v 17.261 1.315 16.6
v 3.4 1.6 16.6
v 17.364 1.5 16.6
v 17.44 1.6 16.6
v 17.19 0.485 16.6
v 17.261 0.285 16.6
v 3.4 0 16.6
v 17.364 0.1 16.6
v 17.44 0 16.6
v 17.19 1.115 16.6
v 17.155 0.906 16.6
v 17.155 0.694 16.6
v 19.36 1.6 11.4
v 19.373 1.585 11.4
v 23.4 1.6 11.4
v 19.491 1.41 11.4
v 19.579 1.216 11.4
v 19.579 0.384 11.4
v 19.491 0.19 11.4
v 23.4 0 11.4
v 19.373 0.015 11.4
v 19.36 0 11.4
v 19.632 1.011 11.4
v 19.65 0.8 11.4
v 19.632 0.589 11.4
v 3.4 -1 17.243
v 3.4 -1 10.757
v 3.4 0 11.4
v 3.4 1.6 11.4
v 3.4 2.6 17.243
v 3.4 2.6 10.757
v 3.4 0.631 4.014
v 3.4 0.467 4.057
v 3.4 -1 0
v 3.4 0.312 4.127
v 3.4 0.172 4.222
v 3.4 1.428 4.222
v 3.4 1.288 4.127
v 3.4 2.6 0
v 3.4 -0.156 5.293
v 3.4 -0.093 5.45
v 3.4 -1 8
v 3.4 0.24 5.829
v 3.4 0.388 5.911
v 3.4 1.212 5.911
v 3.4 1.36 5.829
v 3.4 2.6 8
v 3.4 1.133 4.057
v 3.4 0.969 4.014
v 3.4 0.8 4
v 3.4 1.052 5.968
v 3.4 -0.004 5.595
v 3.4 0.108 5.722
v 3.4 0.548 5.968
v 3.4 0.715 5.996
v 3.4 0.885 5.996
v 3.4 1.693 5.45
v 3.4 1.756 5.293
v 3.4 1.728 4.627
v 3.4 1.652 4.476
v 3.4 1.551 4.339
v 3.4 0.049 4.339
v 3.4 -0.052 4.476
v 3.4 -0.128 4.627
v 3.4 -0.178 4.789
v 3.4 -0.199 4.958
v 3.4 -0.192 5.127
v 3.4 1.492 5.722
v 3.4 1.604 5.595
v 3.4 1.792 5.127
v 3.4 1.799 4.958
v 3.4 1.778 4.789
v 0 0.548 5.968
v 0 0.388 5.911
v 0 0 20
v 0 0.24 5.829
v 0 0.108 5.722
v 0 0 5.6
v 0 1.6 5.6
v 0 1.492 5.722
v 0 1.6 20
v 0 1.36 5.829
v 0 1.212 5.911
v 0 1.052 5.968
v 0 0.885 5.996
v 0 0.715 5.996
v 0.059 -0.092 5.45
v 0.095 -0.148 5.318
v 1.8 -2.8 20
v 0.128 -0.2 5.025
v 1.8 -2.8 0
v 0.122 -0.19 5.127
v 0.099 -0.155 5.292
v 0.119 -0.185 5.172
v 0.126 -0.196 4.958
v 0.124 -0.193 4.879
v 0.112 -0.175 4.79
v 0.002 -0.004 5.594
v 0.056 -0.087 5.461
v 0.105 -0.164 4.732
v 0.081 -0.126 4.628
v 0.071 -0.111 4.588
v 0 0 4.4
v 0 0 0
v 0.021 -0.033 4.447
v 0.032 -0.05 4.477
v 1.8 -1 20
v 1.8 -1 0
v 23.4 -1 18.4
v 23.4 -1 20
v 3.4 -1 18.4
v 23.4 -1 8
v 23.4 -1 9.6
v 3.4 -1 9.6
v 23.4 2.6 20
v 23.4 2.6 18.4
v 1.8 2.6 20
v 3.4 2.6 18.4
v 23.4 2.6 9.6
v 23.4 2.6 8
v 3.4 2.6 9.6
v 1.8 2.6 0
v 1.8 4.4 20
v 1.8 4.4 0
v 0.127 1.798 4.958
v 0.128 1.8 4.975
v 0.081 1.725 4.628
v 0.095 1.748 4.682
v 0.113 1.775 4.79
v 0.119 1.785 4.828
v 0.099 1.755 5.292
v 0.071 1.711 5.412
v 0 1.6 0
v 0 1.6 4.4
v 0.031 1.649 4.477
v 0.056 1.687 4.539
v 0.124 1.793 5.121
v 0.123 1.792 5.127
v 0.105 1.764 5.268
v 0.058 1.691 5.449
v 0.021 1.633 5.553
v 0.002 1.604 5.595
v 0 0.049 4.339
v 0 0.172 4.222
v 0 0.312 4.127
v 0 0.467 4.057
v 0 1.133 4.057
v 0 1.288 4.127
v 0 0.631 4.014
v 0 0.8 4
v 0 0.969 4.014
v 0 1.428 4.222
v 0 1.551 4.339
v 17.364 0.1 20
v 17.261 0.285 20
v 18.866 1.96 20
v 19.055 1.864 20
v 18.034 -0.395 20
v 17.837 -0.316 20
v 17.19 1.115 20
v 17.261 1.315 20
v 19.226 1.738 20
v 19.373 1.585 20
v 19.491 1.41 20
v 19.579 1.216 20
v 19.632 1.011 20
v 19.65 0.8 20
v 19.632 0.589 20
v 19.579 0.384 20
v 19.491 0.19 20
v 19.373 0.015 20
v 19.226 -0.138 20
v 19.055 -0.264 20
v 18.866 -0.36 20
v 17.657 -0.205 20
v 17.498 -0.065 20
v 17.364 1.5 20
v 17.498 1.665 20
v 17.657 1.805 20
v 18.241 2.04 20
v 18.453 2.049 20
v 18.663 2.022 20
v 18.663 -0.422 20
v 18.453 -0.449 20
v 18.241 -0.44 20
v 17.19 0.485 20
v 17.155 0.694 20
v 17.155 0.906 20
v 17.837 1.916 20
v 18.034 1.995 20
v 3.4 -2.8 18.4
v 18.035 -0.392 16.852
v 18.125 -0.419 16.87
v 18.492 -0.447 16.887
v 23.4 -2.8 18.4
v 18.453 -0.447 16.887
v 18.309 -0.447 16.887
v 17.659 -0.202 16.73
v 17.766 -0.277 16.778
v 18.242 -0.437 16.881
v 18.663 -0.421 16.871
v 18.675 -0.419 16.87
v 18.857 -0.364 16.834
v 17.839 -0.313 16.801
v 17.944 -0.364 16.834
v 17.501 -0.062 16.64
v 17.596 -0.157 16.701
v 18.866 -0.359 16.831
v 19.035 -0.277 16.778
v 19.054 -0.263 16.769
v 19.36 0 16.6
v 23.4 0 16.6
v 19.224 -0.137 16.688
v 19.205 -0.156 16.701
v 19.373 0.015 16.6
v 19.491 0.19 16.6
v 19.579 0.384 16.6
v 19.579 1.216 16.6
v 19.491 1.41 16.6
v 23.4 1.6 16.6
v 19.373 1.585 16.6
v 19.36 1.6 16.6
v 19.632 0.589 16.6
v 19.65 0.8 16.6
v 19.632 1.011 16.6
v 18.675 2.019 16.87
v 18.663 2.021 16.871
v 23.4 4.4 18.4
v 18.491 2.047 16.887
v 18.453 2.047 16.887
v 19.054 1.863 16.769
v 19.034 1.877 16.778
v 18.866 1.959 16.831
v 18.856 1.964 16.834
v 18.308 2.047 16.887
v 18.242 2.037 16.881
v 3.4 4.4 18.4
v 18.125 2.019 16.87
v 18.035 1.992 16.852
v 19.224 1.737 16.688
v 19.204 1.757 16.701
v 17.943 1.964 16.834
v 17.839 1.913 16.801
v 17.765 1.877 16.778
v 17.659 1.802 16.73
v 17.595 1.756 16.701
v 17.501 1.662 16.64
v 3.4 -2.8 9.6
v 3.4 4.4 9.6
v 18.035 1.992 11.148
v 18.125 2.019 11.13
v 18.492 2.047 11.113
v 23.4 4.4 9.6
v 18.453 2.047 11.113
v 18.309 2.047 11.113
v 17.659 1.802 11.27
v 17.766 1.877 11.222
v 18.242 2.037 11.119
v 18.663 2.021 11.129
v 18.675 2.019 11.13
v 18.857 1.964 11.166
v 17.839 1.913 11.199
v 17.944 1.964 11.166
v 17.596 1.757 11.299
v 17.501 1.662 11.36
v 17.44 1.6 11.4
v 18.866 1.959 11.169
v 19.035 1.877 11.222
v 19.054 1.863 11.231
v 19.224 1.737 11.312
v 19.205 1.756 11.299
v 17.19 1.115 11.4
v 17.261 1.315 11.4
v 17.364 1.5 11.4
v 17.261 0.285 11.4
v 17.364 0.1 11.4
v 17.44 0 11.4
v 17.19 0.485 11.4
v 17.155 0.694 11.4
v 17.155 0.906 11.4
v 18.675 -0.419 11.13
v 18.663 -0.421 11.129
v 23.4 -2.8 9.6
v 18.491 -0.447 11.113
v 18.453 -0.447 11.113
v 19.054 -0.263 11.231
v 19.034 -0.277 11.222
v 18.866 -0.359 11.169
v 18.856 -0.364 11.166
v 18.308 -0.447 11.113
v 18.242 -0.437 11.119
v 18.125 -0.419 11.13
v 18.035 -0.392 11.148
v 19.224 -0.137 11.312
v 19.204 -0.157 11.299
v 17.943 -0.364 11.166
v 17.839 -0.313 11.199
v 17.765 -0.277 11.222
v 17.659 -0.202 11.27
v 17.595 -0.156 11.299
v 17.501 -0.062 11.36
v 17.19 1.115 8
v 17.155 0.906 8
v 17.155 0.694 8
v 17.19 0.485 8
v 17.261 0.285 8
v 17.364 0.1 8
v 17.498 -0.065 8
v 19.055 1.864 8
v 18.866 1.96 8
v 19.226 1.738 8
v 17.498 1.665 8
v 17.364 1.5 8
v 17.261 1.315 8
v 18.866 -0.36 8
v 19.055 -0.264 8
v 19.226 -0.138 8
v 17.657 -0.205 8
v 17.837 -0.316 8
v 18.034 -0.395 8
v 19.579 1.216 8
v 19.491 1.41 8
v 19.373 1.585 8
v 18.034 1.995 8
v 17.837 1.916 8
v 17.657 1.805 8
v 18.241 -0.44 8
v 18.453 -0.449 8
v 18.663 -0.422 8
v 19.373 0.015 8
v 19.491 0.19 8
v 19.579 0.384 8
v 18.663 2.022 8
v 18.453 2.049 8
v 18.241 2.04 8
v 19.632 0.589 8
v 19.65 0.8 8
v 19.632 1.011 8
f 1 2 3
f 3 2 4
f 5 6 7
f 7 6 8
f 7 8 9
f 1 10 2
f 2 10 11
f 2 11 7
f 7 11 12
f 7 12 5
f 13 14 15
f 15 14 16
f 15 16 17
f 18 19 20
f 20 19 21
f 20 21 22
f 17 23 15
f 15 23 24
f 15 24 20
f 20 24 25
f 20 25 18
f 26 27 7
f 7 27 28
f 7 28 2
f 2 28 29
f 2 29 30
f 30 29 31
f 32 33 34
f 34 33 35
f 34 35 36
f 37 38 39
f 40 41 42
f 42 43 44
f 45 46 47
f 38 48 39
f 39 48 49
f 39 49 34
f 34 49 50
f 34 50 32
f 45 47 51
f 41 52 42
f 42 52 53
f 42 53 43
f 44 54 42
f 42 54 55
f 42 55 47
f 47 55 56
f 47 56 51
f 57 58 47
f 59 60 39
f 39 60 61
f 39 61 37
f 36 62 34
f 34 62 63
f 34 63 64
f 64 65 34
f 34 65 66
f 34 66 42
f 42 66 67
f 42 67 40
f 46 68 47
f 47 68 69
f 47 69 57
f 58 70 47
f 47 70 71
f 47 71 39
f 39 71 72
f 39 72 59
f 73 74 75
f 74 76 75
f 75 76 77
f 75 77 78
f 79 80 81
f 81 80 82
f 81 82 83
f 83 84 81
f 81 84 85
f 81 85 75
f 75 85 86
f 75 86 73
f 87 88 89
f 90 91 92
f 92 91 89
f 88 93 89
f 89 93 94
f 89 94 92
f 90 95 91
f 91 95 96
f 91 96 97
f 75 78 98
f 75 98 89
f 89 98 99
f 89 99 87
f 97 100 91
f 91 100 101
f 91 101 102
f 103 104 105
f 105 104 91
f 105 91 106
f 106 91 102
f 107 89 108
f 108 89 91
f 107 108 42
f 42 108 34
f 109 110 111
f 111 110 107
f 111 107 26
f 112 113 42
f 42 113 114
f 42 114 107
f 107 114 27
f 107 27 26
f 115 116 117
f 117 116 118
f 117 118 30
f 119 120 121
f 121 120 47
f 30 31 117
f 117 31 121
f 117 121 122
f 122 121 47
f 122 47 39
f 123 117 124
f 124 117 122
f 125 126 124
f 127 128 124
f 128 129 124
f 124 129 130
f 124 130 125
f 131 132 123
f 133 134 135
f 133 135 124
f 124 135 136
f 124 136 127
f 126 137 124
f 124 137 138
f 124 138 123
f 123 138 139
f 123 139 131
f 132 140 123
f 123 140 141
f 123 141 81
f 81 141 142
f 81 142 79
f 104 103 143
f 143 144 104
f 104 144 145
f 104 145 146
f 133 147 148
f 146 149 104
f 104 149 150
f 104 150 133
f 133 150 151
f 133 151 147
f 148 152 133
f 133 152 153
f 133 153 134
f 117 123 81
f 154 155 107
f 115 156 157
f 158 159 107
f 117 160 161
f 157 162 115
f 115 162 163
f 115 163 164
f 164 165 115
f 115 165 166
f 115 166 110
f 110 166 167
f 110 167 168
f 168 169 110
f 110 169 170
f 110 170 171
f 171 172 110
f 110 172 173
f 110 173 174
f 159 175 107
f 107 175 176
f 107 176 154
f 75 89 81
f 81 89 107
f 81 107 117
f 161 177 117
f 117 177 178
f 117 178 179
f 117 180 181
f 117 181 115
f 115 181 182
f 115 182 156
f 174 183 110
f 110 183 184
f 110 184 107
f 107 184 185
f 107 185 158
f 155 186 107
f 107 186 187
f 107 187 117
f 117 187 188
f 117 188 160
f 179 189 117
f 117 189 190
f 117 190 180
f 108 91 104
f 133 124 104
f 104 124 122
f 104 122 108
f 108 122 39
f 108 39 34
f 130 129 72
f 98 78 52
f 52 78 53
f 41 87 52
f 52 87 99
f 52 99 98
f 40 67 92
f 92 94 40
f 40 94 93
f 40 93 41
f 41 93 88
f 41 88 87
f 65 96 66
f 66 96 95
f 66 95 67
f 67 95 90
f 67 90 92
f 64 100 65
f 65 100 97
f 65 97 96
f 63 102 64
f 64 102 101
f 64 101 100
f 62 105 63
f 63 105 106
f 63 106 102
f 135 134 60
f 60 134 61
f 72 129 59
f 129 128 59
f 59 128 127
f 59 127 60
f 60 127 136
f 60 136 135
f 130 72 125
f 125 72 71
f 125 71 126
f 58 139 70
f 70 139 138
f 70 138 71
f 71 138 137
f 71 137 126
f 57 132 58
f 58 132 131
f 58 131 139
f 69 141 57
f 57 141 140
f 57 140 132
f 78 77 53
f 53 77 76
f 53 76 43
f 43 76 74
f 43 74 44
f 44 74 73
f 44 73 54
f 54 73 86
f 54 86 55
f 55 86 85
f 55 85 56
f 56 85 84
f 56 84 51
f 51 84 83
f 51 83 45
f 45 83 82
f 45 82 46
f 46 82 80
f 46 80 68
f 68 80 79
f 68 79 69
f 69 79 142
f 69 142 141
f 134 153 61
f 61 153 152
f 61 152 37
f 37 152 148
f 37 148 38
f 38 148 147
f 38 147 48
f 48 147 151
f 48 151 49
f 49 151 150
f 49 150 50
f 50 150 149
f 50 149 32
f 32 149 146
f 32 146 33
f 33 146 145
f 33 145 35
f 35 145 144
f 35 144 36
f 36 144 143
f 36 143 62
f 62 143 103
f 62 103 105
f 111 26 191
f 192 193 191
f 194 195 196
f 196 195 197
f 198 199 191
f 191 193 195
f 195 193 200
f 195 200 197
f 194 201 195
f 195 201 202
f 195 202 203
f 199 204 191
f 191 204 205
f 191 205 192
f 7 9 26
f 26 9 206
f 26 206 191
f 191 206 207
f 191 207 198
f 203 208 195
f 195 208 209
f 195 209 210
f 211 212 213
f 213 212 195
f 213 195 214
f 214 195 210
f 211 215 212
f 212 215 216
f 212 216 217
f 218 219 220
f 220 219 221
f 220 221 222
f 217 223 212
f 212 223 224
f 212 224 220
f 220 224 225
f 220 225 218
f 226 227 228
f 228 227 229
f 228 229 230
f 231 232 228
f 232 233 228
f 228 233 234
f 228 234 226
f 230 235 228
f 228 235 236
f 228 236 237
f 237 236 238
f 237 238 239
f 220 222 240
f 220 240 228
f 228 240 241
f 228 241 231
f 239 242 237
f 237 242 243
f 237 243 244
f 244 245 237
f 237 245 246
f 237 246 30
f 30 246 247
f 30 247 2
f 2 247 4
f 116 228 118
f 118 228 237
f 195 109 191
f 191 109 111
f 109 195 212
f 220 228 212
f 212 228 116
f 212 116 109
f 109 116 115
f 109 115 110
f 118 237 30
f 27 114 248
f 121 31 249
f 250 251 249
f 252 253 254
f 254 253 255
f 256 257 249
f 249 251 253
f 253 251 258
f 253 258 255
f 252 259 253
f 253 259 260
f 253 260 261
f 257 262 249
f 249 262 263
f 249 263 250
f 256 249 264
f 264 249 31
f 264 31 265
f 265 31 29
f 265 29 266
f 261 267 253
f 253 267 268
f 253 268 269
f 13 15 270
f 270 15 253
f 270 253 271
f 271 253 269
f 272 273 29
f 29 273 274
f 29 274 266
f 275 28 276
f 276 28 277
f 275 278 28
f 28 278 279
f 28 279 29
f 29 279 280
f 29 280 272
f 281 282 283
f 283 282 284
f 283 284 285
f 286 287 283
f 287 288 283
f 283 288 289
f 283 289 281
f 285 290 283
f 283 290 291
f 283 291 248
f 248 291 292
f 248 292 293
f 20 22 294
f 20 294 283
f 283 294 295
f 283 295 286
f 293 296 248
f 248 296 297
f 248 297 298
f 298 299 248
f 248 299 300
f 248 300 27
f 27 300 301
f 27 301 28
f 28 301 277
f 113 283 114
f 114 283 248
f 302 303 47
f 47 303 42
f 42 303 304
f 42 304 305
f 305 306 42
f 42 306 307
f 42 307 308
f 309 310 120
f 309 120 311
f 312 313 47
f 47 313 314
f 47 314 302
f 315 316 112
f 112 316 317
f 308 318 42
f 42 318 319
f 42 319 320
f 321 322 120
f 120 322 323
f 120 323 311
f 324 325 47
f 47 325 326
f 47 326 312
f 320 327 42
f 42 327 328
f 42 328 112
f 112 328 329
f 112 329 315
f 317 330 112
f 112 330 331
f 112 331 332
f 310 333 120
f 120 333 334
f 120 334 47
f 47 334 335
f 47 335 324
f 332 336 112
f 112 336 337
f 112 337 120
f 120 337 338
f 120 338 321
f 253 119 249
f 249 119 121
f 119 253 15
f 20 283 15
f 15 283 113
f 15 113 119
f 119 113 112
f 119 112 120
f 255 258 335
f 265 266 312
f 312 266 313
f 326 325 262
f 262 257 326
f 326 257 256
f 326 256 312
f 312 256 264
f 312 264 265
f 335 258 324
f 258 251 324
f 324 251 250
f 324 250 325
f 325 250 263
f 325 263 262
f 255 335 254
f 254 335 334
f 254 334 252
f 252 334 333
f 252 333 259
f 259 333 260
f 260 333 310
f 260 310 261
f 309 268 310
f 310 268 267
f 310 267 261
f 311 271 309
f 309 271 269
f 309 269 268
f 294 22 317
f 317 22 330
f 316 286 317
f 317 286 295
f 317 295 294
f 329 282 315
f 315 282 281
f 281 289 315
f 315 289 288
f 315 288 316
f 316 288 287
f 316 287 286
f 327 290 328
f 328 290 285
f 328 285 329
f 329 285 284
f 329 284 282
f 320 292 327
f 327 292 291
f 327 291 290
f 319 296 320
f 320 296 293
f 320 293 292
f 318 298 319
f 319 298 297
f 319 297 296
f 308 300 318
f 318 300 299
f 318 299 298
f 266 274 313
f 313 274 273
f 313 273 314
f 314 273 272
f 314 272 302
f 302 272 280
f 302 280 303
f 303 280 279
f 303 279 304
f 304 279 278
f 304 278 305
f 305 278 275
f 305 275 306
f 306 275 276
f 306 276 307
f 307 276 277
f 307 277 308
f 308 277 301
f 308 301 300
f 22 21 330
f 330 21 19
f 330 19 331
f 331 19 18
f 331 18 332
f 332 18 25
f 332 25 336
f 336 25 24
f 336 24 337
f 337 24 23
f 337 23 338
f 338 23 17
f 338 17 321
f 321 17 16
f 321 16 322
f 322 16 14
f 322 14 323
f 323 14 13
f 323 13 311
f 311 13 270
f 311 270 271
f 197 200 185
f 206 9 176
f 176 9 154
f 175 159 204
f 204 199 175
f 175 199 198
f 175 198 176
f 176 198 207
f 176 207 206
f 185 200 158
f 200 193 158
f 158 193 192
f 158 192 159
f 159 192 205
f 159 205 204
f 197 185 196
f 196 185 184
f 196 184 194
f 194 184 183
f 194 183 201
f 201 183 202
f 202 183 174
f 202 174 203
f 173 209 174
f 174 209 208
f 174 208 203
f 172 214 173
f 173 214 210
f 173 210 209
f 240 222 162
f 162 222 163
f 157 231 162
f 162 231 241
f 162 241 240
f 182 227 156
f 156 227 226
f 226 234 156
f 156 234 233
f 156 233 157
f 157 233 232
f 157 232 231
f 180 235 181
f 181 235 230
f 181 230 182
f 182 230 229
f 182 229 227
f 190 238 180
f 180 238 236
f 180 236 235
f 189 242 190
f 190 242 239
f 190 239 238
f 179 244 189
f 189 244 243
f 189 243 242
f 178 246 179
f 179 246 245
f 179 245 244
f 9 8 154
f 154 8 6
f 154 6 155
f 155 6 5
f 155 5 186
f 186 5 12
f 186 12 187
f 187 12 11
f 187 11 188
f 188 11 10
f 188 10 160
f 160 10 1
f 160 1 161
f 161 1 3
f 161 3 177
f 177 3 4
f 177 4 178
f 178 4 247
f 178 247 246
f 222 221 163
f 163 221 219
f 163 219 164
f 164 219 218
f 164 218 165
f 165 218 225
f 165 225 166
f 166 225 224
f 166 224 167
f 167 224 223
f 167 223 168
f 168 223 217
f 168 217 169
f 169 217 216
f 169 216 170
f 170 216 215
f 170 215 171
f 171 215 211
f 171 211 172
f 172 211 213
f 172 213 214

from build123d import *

# Parameters (mm, degrees)
BOSS_EXTRU_1_DEPTH      = 20
ESQUISSE1_R             = 1
ENL_V_MAT_EXTRU_1_DEPTH = 4.4
BOSS_EXTRU_2_DEPTH      = 20
ESQUISSE3_R             = 1.25
ENL_V_MAT_EXTRU_2_DEPTH = 21


with BuildPart() as part:
    # ProfileRainureEsquisse → Boss.-Extru.1 (new body)
    with BuildSketch(Plane.XY):
        Polygon((0, 0), (0, 1.6), (1.8, 4.4), (1.8, 2.6), (3.4, 2.6), (3.4, -1), (1.8, -1), (1.8, -2.8), align=None)
    extrude(amount=BOSS_EXTRU_1_DEPTH)

    # Esquisse1 → Enlèv. mat.-Extru.1 (cut, through all)
    with BuildSketch(Plane(origin=(3.4, 0, 0), x_dir=(0, 0, -1), z_dir=(1, 0, 0))):
        with Locations((-5, 0.8)):
            Circle(ESQUISSE1_R)
    extrude(amount=-ENL_V_MAT_EXTRU_1_DEPTH, mode=Mode.SUBTRACT)

    # Esquisse2 → Boss.-Extru.2 (add)
    with BuildSketch(Plane(origin=(3.4, 0, 0), x_dir=(0, 0, -1), z_dir=(1, 0, 0))):
        Polygon((-16.6, 0), (-16.6, 1.6), (-18.4, 4.4), (-18.4, 2.6), (-20, 2.6), (-20, -1), (-18.4, -1), (-18.4, -2.8), align=None)
        Polygon((-11.4, 1.6), (-11.4, 0), (-9.6, -2.8), (-9.6, -1), (-8, -1), (-8, 2.6), (-9.6, 2.6), (-9.6, 4.4), align=None)
    extrude(amount=BOSS_EXTRU_2_DEPTH)

    # Esquisse3 → Enlèv. mat.-Extru.2 (cut, through all)
    with BuildSketch(Plane.XY.offset(20)):
        with Locations((18.4, 0.8)):
            Circle(ESQUISSE3_R)
    extrude(amount=-ENL_V_MAT_EXTRU_2_DEPTH, mode=Mode.SUBTRACT)


solid = part.part
